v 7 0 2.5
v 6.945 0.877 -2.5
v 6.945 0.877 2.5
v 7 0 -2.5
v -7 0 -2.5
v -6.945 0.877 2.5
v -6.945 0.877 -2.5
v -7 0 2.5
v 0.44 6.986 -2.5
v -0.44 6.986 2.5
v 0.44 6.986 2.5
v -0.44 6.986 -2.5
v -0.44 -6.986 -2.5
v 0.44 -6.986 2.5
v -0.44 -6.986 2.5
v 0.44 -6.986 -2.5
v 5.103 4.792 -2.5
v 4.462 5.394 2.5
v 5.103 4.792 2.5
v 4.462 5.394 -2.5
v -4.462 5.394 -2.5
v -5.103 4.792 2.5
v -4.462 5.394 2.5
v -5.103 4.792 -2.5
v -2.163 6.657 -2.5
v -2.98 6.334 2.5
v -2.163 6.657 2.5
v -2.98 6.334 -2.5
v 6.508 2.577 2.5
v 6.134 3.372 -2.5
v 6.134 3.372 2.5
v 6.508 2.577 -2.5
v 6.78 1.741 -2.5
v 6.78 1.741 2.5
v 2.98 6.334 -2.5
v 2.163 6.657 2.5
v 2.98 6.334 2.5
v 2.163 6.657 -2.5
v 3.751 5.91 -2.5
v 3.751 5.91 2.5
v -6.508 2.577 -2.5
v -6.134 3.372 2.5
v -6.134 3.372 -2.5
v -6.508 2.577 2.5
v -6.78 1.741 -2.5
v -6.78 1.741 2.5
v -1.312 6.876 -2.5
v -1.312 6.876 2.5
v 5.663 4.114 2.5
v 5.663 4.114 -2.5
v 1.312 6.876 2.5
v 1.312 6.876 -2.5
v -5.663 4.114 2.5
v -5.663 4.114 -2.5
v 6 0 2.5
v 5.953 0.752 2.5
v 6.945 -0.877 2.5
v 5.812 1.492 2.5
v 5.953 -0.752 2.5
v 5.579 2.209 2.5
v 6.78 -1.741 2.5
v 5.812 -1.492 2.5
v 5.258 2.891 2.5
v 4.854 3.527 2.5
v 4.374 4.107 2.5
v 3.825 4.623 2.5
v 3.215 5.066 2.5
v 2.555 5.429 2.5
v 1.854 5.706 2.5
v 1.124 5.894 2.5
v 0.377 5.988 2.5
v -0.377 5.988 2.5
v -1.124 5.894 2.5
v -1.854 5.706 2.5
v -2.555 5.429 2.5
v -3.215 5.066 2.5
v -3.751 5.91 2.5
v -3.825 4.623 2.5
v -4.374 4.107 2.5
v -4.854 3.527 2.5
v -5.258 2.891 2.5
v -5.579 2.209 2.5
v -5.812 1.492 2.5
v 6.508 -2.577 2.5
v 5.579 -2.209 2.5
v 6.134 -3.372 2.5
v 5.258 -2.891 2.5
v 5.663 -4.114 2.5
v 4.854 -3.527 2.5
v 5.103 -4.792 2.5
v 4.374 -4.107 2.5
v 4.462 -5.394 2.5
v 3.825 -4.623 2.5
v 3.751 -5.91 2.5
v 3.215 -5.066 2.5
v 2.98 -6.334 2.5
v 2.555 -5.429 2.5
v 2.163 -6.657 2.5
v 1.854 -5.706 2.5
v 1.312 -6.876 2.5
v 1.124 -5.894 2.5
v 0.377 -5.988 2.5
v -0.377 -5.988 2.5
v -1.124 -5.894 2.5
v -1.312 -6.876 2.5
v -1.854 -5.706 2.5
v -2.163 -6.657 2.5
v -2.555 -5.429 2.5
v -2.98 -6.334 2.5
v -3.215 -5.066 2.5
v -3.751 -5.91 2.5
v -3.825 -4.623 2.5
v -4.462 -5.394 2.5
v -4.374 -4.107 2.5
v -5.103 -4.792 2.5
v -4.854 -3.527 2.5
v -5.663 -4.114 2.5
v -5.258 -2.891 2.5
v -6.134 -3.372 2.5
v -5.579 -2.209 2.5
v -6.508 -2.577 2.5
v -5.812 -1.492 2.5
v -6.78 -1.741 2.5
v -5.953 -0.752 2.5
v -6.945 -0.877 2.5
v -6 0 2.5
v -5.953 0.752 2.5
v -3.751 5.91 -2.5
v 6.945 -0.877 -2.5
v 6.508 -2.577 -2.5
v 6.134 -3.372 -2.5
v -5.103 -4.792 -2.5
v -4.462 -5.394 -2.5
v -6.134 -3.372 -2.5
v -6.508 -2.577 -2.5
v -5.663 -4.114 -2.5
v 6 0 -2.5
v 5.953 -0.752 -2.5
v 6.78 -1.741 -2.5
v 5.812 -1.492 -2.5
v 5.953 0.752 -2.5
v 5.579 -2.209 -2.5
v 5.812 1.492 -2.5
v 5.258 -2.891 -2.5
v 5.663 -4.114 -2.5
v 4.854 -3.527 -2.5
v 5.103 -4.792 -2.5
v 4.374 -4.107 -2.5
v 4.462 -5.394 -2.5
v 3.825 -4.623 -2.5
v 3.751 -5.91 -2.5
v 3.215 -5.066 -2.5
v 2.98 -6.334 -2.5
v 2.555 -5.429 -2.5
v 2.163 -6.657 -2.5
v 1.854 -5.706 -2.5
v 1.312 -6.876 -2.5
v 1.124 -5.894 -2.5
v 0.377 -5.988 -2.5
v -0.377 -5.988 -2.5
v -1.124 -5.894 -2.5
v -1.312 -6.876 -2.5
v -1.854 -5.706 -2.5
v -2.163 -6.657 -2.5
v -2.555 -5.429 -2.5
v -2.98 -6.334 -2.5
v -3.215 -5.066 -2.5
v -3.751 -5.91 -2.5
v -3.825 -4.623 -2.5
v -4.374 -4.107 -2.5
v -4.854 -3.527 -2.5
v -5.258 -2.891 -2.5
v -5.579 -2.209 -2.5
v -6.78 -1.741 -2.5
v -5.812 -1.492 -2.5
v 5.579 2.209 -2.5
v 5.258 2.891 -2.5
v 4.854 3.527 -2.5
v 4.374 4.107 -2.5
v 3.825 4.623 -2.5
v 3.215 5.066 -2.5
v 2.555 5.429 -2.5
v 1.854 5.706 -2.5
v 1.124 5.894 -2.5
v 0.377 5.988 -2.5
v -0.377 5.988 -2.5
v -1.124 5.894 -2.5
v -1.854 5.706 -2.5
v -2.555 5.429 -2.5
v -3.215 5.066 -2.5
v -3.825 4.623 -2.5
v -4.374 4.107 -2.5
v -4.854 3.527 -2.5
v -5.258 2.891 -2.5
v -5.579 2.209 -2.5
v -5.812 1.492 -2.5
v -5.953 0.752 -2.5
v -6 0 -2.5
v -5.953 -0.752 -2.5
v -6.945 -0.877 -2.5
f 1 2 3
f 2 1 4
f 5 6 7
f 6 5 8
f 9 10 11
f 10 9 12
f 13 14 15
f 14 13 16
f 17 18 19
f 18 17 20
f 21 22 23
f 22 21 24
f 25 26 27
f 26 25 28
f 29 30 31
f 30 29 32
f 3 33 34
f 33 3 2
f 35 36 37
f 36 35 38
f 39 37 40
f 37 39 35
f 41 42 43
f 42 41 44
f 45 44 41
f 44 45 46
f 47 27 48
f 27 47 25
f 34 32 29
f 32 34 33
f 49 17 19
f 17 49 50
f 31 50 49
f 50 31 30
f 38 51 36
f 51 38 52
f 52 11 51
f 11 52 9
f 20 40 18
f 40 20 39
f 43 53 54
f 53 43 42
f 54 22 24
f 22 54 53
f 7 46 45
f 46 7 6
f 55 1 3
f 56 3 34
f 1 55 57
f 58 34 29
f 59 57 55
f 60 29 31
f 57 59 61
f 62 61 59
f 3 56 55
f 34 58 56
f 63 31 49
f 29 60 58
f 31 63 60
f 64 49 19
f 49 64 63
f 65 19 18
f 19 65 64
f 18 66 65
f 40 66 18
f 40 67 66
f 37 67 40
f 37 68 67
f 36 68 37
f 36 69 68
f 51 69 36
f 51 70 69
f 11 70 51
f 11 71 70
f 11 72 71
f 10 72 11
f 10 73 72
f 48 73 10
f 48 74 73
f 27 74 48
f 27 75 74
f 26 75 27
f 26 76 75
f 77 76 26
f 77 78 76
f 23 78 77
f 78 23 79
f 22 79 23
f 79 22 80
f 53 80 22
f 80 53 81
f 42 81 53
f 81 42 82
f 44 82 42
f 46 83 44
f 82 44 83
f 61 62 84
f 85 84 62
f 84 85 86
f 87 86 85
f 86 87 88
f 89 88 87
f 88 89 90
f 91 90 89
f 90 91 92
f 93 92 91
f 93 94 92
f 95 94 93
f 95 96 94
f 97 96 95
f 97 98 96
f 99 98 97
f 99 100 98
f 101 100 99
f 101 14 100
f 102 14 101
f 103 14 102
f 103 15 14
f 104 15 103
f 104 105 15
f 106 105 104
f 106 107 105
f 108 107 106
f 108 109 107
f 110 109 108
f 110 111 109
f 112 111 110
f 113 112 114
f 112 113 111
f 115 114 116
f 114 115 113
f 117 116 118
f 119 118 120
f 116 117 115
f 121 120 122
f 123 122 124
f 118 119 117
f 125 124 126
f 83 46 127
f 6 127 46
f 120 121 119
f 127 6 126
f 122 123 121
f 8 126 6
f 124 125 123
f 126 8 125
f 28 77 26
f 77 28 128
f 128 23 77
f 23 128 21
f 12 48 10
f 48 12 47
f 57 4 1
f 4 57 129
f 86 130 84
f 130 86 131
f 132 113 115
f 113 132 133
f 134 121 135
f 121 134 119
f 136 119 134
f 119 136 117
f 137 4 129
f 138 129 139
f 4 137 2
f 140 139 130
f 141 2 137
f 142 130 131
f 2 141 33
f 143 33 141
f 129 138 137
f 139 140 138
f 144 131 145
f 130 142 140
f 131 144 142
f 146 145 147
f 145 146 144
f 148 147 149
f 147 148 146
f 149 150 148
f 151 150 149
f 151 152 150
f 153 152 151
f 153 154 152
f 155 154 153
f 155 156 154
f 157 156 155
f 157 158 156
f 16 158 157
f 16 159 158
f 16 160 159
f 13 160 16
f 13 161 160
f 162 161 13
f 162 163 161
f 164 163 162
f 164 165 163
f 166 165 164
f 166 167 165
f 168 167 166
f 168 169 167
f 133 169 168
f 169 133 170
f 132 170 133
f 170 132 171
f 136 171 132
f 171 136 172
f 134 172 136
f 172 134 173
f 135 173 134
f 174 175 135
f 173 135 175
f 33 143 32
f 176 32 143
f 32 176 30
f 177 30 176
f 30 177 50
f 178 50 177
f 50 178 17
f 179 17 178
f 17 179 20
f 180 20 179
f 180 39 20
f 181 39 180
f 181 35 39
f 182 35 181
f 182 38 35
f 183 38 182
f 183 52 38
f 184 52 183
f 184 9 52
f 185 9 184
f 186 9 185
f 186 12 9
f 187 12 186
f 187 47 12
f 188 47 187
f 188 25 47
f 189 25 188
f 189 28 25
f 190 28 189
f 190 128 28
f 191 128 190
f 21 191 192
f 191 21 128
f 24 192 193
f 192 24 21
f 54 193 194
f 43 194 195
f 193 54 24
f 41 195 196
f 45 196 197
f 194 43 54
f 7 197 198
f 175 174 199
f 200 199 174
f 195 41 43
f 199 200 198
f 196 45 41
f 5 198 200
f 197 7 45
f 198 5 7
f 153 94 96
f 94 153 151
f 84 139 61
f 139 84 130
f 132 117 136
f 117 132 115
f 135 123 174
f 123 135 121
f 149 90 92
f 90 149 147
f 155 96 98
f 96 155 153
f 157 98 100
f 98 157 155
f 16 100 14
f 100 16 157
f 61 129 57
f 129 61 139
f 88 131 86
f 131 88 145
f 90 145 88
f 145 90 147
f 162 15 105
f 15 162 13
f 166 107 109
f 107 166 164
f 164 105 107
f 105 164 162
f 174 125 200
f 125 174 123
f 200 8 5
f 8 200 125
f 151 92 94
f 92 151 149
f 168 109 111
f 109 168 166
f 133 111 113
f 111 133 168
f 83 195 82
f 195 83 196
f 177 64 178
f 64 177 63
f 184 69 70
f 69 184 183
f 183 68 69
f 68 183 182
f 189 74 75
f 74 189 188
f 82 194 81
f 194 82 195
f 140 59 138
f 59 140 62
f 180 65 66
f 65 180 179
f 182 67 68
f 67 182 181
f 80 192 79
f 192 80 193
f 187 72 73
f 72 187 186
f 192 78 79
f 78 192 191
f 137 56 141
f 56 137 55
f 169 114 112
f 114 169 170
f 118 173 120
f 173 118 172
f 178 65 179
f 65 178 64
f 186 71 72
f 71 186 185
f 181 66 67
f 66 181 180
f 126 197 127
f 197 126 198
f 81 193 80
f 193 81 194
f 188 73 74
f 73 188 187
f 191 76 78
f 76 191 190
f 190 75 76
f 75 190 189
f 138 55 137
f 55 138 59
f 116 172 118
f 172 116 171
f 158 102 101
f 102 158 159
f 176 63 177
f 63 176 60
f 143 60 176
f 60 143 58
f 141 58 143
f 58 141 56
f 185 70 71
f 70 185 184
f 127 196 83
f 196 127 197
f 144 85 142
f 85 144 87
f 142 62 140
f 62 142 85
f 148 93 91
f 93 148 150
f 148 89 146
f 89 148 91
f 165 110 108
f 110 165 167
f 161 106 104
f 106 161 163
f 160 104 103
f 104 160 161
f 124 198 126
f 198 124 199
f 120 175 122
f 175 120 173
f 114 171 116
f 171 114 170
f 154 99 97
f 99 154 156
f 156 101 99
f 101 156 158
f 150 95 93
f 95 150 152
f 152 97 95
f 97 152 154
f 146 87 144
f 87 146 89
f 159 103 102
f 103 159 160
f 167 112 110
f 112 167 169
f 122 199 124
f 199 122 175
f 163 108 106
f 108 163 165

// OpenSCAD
$fn = 50;


difference() {
	union() {
		translate(v = [0, 0, -2.5000000000]) {
			cylinder(h = 5, r = 7.0000000000);
		}
	}
	union() {
		translate(v = [0, 0, -100.0000000000]) {
			cylinder(h = 200, r = 6);
		}
	}
}
